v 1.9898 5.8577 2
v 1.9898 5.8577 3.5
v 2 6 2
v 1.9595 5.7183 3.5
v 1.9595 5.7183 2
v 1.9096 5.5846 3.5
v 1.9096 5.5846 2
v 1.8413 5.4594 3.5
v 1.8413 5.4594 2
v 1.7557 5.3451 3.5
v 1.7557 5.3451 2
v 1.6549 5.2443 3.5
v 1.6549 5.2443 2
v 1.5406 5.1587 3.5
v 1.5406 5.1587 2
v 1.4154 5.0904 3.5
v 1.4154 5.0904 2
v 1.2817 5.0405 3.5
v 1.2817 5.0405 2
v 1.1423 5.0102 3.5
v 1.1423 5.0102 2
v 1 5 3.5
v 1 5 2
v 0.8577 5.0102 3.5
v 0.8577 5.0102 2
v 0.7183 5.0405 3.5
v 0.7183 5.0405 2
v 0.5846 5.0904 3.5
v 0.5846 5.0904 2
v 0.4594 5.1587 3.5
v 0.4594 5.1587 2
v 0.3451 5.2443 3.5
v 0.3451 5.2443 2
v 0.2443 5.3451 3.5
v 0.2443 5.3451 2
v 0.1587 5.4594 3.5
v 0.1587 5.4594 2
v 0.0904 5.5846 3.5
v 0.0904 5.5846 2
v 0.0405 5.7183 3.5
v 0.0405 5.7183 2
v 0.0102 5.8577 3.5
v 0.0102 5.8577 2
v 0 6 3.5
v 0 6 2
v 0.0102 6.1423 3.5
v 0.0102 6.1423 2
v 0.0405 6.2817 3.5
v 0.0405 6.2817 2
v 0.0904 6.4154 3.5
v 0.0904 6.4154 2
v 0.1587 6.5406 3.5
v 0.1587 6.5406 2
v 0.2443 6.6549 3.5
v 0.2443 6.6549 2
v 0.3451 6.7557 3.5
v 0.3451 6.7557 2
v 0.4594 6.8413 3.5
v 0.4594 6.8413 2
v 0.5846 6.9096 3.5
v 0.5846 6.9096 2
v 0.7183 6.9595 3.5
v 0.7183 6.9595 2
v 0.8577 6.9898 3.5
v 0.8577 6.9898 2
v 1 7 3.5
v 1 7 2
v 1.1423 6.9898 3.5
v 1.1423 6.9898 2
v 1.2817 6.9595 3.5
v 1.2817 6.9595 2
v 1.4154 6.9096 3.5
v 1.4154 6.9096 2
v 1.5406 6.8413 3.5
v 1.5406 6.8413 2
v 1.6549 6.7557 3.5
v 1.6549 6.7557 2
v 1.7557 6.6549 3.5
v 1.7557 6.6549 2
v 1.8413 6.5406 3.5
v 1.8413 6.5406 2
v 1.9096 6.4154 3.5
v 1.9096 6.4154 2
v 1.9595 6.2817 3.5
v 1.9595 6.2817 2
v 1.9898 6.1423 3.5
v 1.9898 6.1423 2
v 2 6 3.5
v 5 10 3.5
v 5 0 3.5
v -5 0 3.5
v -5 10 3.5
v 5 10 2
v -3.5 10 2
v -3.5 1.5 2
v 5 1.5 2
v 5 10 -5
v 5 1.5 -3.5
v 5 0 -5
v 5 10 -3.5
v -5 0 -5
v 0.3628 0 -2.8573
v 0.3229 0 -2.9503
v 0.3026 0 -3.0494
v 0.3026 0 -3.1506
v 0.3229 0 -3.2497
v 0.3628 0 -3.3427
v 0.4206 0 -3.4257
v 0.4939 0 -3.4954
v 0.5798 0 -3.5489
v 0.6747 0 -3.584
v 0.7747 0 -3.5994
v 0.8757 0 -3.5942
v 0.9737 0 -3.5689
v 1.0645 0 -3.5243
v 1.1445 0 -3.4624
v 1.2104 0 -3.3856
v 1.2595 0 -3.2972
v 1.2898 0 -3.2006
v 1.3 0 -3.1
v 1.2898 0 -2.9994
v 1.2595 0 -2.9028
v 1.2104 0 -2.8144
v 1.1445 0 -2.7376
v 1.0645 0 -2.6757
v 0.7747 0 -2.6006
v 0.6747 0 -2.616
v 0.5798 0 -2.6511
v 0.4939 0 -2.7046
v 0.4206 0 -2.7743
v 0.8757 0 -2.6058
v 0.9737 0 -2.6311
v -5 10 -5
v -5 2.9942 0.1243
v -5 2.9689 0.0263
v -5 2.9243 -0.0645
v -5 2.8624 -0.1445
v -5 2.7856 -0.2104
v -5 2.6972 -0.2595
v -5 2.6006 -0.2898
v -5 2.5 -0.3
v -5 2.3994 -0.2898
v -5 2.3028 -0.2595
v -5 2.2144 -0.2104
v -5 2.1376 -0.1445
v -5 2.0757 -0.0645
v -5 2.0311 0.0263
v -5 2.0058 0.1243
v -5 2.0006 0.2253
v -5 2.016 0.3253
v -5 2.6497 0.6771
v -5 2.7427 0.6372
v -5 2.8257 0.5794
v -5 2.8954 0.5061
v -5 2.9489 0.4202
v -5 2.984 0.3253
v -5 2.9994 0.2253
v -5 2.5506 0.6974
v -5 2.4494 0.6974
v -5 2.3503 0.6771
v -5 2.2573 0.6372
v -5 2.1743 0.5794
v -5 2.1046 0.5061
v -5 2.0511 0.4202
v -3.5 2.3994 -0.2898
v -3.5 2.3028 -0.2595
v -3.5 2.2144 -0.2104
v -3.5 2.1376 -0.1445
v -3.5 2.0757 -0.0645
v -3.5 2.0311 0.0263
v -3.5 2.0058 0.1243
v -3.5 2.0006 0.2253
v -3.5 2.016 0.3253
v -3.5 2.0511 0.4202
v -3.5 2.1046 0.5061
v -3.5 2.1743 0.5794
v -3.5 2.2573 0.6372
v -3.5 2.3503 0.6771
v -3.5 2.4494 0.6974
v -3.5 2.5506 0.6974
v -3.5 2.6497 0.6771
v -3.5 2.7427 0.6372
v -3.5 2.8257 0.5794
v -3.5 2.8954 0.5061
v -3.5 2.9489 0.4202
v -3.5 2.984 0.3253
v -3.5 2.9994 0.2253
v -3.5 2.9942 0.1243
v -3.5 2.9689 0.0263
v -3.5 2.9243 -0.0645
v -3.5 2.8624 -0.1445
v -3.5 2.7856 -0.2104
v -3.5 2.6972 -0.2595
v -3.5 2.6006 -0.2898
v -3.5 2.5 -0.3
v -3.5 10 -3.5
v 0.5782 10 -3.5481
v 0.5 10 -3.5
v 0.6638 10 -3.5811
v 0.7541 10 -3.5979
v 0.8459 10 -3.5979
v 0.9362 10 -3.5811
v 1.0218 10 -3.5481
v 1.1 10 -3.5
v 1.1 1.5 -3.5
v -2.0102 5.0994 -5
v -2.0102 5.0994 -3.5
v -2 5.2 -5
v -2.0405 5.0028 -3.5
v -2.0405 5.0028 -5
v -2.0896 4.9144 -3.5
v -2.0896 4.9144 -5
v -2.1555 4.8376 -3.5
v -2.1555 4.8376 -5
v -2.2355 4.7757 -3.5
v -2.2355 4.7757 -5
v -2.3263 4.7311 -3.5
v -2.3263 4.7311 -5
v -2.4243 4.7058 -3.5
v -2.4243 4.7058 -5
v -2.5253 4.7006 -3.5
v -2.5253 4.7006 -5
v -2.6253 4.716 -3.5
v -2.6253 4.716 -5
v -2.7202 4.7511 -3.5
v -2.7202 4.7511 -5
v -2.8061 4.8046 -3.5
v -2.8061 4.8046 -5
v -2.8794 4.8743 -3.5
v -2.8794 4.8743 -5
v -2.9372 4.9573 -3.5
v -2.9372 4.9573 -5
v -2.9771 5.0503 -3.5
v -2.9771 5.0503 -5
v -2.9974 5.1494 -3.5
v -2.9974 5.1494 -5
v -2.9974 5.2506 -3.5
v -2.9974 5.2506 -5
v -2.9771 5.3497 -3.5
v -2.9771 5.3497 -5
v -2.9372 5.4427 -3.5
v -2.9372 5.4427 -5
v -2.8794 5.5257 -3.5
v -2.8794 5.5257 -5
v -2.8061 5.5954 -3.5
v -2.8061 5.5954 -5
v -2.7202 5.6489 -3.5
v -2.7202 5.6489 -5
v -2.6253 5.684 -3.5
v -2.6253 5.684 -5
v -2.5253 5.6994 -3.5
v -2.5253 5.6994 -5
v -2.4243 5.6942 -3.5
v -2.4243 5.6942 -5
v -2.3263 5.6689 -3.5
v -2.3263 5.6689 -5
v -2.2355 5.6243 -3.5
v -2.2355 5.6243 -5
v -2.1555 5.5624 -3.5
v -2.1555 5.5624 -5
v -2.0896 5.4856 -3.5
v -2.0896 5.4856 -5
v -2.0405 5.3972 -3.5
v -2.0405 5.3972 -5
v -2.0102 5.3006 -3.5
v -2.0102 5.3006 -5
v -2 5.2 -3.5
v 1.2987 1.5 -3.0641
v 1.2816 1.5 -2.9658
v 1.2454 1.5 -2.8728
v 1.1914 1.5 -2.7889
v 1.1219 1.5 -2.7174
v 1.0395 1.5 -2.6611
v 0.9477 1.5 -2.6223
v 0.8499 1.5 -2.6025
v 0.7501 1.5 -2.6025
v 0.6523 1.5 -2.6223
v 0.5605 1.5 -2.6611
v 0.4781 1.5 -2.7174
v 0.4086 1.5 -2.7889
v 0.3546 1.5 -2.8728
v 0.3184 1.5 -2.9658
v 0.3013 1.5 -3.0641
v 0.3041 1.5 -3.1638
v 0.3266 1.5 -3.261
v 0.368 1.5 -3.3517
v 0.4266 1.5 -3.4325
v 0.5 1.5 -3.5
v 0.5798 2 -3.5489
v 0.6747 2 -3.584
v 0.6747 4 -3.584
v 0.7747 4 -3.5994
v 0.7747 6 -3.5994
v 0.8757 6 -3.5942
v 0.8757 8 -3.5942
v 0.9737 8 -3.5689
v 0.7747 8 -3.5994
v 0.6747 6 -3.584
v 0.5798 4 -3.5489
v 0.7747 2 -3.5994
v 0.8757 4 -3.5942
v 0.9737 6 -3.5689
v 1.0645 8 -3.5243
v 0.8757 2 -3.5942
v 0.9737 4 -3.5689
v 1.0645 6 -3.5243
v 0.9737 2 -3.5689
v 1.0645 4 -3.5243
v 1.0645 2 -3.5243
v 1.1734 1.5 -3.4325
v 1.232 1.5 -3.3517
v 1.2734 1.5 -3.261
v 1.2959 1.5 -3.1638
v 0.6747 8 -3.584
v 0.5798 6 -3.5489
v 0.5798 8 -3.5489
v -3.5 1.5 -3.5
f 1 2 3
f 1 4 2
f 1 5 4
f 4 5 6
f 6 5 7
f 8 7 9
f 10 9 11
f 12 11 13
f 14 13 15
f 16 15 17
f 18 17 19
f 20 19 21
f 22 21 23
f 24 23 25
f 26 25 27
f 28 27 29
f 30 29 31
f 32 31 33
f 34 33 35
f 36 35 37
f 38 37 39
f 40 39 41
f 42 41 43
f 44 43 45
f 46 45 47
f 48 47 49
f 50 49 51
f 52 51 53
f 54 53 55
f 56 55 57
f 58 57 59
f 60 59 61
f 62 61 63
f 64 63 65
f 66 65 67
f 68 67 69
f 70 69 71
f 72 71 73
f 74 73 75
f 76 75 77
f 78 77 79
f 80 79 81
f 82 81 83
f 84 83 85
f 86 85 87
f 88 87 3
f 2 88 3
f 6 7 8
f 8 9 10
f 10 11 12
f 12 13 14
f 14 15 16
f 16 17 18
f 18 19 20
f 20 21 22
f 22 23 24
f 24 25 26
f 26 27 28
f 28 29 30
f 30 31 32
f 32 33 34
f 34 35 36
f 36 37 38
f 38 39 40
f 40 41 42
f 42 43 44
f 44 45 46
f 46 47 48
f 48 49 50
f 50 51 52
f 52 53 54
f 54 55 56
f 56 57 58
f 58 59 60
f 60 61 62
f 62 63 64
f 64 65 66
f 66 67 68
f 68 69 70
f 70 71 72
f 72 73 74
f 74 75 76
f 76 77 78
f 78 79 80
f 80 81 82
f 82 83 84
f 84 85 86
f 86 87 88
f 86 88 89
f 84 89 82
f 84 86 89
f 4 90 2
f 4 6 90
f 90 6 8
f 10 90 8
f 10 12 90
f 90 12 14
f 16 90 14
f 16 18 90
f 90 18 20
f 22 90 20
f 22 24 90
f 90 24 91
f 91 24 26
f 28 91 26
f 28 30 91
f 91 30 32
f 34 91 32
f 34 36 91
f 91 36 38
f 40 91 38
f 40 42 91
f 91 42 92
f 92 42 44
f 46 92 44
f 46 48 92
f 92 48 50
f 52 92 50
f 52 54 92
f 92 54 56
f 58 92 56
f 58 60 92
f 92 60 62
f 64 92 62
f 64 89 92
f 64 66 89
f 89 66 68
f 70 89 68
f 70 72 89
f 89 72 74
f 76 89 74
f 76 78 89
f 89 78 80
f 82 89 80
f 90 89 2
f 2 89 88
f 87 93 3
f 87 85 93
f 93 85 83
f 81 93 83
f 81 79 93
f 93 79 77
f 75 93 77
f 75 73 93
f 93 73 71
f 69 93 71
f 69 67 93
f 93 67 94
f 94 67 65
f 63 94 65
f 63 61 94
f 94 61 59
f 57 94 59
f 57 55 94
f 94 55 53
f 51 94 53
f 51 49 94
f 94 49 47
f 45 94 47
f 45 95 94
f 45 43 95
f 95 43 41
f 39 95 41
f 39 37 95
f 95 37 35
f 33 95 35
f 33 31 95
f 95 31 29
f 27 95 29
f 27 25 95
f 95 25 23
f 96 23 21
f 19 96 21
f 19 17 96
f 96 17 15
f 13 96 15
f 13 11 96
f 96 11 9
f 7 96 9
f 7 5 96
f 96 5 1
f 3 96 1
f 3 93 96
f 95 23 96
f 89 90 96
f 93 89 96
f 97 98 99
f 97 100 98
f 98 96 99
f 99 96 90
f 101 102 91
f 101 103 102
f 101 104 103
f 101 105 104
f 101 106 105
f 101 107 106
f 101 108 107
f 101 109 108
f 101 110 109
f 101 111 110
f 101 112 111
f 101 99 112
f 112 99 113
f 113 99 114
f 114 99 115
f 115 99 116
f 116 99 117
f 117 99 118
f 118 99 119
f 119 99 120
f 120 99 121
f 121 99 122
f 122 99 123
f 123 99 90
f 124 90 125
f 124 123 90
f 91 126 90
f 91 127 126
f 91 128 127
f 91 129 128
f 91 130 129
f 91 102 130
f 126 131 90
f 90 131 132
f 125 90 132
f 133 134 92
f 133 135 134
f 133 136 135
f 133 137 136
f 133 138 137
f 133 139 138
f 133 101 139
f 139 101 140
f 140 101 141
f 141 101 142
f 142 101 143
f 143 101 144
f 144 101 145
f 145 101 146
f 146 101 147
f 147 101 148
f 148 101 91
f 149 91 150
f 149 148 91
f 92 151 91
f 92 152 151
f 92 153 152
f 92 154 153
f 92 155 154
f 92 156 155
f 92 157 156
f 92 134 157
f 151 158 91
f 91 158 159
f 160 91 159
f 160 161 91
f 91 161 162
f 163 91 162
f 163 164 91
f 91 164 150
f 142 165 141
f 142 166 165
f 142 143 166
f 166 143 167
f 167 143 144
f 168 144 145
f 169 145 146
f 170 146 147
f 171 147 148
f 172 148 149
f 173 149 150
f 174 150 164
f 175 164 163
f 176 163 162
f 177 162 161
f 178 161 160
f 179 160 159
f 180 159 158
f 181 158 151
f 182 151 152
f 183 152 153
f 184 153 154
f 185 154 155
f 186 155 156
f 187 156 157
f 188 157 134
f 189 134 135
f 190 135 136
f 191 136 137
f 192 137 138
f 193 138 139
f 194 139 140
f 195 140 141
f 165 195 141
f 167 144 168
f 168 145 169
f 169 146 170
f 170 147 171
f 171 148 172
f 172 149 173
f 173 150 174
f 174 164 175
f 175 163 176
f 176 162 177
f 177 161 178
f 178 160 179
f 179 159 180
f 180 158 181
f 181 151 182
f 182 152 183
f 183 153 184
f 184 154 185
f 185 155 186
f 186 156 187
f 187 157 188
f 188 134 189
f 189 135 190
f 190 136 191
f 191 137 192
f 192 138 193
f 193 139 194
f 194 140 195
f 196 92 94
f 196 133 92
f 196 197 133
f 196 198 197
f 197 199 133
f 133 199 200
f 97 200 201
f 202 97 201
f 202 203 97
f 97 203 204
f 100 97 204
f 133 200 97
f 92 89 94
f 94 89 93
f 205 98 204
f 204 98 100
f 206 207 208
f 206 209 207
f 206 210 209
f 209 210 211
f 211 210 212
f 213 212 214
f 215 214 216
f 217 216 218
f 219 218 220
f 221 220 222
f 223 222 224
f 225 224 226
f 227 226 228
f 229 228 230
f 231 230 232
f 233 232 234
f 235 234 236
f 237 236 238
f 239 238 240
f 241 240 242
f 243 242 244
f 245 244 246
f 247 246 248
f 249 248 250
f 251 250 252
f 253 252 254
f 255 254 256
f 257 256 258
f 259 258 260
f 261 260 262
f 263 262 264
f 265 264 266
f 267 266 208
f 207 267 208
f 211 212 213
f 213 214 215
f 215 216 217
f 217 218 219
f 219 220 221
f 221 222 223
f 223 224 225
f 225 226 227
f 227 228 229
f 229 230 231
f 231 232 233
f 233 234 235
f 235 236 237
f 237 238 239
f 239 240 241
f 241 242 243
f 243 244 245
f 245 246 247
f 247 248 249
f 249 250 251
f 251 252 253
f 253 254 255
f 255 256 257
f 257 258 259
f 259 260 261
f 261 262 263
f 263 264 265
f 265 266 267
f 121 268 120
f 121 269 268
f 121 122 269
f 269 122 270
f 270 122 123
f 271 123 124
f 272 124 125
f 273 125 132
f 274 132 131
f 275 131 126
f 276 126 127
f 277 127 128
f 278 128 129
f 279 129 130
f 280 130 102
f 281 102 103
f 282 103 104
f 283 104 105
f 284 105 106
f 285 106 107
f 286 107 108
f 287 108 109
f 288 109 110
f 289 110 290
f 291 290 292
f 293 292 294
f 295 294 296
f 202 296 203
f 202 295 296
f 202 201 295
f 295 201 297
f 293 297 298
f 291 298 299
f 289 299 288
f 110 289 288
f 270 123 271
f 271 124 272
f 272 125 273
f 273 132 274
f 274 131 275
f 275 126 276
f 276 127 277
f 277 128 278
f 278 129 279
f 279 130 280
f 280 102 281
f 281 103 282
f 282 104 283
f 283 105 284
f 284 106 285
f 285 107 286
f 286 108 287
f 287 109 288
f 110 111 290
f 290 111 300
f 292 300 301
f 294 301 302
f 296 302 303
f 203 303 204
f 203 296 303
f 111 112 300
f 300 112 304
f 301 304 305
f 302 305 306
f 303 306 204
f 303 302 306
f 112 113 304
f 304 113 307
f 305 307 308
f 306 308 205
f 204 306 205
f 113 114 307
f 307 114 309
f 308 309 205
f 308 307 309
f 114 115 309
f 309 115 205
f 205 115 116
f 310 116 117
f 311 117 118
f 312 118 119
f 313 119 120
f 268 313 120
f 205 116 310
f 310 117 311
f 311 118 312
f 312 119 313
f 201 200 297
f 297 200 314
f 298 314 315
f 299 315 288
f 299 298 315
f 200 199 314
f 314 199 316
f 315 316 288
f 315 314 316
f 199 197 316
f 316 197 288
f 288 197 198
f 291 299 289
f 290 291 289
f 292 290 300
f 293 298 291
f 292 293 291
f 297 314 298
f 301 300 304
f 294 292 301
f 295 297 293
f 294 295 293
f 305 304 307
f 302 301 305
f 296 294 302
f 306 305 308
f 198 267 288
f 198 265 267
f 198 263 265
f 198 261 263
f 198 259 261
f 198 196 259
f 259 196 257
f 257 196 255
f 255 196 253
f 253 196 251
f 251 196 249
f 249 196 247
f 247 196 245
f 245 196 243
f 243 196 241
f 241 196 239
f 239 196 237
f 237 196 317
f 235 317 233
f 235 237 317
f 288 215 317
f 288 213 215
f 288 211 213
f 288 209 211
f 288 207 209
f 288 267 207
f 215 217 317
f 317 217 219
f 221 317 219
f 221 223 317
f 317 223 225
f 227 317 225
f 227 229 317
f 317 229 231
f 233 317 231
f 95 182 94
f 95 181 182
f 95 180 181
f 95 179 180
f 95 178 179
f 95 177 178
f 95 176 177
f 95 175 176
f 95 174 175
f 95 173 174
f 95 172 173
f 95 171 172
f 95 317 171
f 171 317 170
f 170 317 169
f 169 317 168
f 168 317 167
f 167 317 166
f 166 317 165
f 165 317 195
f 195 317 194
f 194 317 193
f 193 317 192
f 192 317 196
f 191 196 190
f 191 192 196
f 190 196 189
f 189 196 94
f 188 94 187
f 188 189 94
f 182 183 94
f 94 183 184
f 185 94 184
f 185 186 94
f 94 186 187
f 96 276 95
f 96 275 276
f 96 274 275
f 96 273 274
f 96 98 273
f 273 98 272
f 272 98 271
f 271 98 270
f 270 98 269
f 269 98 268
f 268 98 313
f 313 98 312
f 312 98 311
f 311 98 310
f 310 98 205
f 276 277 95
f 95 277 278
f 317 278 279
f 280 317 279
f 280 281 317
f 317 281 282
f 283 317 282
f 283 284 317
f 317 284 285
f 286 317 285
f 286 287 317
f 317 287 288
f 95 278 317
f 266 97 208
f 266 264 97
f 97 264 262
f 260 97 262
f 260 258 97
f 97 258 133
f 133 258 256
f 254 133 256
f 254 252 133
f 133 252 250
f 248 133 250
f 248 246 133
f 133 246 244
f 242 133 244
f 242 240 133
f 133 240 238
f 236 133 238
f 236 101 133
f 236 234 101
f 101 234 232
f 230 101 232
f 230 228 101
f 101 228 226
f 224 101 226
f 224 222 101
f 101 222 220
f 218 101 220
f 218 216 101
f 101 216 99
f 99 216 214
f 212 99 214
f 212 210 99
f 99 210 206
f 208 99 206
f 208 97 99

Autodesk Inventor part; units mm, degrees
ref_plane "YZ Plane" through (0, 0, 0) normal (1, 0, 0) x (0, 1, 0)
ref_plane "XZ Plane" through (0, 0, 0) normal (0, 1, 0) x (-1, 0, 0)
ref_plane "XY Plane" through (0, 0, 0) normal (0, 0, 1) x (1, 0, 0)
sketch "Sketch1" plane through (0, 0, 0) normal (0, 1, 0) x (-1, 0, 0)
  line L0 (-5, 5) -> (5, 5)
  line L1 (5, 5) -> (5, -5)
  line L2 (5, -5) -> (-5, -5)
  line L3 (-5, -5) -> (-5, 5)
  line L4 (-5, 5) -> (5, -5) construction
  line L5 (5, 5) -> (-5, -5) construction
  point P0 (0, 0)
  dimension "d0" = 10
  dimension "d1" = 10
extrude "Extrusion1" add sketch "Sketch1" along normal blind 1.5
sketch "Sketch2" plane through (0, 1.5, 0) normal (0, 1, 0) x (1, 0, 0)
  line L0 (-5, -5) -> (-3.5, -5)
  line L1 (-5, -5) -> (5, -5) projected
  line L2 (-3.5, -5) -> (-3.5, 3.5)
  line L3 (-3.5, 3.5) -> (5, 3.5)
  line L4 (5, 3.5) -> (5, 5)
  line L5 (5, 5) -> (-5, 5)
  line L6 (-5, 5) -> (-5, -5)
  point P0 (0, 0)
  dimension "d4" = 1.5
  dimension "d5" = 8.5
  dimension "d6" = 90
  dimension "d7" = 8.5
  dimension "d8" = 90
  dimension "d9" = 10
  dimension "d10" = 90
extrude "Extrusion2" add sketch "Sketch2" along normal blind 8.5
sketch "Sketch3" plane through (0, 1.5, 0) normal (0, 1, 0) x (1, 0, 0)
  circle A0 centre (0.8, 3.1) radius 0.5
  line L0 (5, 3.5) -> (-3.5, 3.5) projected
  line L1 (-3.5, 3.5) -> (-3.5, -5) projected
  point P0 (0, 0)
  dimension "d13" = 1
  dimension "d14" = 0.4
  dimension "d15" = 4.3
extrude "Extrusion3" cut sketch "Sketch3" against normal blind 8.5
sketch "Sketch4" plane through (-3.5, 1.5, -3.5) normal (0, 0, 1) x (1, 0, 0)
  circle A0 centre (1, 3.7) radius 0.5
  line L0 (8.5, 0) -> (0, 0) projected
  line L1 (0, 0) -> (0, 8.5) projected
  point P0 (3.5, -1.5)
  dimension "d18" = 1
  dimension "d19" = 3.7
  dimension "d20" = 1
extrude "Extrusion4" cut sketch "Sketch4" against normal blind 8.5
sketch "Sketch5" plane through (0, 0, 0) normal (0, -1, 0) x (1, 0, 0)
  circle A0 centre (0.8, -3.1) radius 0.5
  circle A1 centre (0.8, -3.1) radius 0.5 projected
  point P0 (0, 0)
  dimension "d23" = 1
  dimension "d24" = 0
extrude "Extrusion5" cut sketch "Sketch5" against normal blind 10
sketch "Sketch6" plane through (-3.5, 1.5, 5) normal (1, 0, 0) x (0, 0, -1)
  circle A0 centre (4.8, 1) radius 0.5
  line L0 (0, 0) -> (8.5, 0) projected
  line L1 (8.5, 0) -> (8.5, 8.5) projected
  point P0 (5, -1.5)
  dimension "d27" = 1
  dimension "d28" = 1
  dimension "d29" = 3.7
extrude "Extrusion6" cut sketch "Sketch6" against normal blind 2
sketch "Sketch7" plane through (-5, 0, 5) normal (0, 0, 1) x (1, 0, 0)
  line L0 (0, 0) -> (10, 0)
  line L1 (10, 0) -> (10, 10)
  line L2 (10, 10) -> (0, 10)
  line L3 (0, 10) -> (0, 0)
  point P0 (5, 0)
extrude "Extrusion7" cut sketch "Sketch7" against normal blind 3
sketch "Sketch8" plane through (-5, 0, 2) normal (0, 0, 1) x (1, 0, 0)
  line L0 (0, 0) -> (10, 0)
  line L1 (10, 0) -> (10, 10)
  line L2 (10, 10) -> (0, 10)
  line L3 (0, 10) -> (0, 0)
  point P0 (5, 0)
extrude "Extrusion8" add sketch "Sketch8" along normal blind 1.5
sketch "Sketch9" plane through (-5, 0, 3.5) normal (0, 0, 1) x (1, 0, 0)
  circle A0 centre (6, 6) radius 1
  line L0 (0, 0) -> (10, 0) projected
  line L1 (0, 10) -> (0, 0) projected
  point P0 (5, 0)
  dimension "d36" = 2
  dimension "d37" = 6
  dimension "d38" = 6
extrude "Extrusion9" cut sketch "Sketch9" against normal blind 1.5
properties part number "Corner2"
